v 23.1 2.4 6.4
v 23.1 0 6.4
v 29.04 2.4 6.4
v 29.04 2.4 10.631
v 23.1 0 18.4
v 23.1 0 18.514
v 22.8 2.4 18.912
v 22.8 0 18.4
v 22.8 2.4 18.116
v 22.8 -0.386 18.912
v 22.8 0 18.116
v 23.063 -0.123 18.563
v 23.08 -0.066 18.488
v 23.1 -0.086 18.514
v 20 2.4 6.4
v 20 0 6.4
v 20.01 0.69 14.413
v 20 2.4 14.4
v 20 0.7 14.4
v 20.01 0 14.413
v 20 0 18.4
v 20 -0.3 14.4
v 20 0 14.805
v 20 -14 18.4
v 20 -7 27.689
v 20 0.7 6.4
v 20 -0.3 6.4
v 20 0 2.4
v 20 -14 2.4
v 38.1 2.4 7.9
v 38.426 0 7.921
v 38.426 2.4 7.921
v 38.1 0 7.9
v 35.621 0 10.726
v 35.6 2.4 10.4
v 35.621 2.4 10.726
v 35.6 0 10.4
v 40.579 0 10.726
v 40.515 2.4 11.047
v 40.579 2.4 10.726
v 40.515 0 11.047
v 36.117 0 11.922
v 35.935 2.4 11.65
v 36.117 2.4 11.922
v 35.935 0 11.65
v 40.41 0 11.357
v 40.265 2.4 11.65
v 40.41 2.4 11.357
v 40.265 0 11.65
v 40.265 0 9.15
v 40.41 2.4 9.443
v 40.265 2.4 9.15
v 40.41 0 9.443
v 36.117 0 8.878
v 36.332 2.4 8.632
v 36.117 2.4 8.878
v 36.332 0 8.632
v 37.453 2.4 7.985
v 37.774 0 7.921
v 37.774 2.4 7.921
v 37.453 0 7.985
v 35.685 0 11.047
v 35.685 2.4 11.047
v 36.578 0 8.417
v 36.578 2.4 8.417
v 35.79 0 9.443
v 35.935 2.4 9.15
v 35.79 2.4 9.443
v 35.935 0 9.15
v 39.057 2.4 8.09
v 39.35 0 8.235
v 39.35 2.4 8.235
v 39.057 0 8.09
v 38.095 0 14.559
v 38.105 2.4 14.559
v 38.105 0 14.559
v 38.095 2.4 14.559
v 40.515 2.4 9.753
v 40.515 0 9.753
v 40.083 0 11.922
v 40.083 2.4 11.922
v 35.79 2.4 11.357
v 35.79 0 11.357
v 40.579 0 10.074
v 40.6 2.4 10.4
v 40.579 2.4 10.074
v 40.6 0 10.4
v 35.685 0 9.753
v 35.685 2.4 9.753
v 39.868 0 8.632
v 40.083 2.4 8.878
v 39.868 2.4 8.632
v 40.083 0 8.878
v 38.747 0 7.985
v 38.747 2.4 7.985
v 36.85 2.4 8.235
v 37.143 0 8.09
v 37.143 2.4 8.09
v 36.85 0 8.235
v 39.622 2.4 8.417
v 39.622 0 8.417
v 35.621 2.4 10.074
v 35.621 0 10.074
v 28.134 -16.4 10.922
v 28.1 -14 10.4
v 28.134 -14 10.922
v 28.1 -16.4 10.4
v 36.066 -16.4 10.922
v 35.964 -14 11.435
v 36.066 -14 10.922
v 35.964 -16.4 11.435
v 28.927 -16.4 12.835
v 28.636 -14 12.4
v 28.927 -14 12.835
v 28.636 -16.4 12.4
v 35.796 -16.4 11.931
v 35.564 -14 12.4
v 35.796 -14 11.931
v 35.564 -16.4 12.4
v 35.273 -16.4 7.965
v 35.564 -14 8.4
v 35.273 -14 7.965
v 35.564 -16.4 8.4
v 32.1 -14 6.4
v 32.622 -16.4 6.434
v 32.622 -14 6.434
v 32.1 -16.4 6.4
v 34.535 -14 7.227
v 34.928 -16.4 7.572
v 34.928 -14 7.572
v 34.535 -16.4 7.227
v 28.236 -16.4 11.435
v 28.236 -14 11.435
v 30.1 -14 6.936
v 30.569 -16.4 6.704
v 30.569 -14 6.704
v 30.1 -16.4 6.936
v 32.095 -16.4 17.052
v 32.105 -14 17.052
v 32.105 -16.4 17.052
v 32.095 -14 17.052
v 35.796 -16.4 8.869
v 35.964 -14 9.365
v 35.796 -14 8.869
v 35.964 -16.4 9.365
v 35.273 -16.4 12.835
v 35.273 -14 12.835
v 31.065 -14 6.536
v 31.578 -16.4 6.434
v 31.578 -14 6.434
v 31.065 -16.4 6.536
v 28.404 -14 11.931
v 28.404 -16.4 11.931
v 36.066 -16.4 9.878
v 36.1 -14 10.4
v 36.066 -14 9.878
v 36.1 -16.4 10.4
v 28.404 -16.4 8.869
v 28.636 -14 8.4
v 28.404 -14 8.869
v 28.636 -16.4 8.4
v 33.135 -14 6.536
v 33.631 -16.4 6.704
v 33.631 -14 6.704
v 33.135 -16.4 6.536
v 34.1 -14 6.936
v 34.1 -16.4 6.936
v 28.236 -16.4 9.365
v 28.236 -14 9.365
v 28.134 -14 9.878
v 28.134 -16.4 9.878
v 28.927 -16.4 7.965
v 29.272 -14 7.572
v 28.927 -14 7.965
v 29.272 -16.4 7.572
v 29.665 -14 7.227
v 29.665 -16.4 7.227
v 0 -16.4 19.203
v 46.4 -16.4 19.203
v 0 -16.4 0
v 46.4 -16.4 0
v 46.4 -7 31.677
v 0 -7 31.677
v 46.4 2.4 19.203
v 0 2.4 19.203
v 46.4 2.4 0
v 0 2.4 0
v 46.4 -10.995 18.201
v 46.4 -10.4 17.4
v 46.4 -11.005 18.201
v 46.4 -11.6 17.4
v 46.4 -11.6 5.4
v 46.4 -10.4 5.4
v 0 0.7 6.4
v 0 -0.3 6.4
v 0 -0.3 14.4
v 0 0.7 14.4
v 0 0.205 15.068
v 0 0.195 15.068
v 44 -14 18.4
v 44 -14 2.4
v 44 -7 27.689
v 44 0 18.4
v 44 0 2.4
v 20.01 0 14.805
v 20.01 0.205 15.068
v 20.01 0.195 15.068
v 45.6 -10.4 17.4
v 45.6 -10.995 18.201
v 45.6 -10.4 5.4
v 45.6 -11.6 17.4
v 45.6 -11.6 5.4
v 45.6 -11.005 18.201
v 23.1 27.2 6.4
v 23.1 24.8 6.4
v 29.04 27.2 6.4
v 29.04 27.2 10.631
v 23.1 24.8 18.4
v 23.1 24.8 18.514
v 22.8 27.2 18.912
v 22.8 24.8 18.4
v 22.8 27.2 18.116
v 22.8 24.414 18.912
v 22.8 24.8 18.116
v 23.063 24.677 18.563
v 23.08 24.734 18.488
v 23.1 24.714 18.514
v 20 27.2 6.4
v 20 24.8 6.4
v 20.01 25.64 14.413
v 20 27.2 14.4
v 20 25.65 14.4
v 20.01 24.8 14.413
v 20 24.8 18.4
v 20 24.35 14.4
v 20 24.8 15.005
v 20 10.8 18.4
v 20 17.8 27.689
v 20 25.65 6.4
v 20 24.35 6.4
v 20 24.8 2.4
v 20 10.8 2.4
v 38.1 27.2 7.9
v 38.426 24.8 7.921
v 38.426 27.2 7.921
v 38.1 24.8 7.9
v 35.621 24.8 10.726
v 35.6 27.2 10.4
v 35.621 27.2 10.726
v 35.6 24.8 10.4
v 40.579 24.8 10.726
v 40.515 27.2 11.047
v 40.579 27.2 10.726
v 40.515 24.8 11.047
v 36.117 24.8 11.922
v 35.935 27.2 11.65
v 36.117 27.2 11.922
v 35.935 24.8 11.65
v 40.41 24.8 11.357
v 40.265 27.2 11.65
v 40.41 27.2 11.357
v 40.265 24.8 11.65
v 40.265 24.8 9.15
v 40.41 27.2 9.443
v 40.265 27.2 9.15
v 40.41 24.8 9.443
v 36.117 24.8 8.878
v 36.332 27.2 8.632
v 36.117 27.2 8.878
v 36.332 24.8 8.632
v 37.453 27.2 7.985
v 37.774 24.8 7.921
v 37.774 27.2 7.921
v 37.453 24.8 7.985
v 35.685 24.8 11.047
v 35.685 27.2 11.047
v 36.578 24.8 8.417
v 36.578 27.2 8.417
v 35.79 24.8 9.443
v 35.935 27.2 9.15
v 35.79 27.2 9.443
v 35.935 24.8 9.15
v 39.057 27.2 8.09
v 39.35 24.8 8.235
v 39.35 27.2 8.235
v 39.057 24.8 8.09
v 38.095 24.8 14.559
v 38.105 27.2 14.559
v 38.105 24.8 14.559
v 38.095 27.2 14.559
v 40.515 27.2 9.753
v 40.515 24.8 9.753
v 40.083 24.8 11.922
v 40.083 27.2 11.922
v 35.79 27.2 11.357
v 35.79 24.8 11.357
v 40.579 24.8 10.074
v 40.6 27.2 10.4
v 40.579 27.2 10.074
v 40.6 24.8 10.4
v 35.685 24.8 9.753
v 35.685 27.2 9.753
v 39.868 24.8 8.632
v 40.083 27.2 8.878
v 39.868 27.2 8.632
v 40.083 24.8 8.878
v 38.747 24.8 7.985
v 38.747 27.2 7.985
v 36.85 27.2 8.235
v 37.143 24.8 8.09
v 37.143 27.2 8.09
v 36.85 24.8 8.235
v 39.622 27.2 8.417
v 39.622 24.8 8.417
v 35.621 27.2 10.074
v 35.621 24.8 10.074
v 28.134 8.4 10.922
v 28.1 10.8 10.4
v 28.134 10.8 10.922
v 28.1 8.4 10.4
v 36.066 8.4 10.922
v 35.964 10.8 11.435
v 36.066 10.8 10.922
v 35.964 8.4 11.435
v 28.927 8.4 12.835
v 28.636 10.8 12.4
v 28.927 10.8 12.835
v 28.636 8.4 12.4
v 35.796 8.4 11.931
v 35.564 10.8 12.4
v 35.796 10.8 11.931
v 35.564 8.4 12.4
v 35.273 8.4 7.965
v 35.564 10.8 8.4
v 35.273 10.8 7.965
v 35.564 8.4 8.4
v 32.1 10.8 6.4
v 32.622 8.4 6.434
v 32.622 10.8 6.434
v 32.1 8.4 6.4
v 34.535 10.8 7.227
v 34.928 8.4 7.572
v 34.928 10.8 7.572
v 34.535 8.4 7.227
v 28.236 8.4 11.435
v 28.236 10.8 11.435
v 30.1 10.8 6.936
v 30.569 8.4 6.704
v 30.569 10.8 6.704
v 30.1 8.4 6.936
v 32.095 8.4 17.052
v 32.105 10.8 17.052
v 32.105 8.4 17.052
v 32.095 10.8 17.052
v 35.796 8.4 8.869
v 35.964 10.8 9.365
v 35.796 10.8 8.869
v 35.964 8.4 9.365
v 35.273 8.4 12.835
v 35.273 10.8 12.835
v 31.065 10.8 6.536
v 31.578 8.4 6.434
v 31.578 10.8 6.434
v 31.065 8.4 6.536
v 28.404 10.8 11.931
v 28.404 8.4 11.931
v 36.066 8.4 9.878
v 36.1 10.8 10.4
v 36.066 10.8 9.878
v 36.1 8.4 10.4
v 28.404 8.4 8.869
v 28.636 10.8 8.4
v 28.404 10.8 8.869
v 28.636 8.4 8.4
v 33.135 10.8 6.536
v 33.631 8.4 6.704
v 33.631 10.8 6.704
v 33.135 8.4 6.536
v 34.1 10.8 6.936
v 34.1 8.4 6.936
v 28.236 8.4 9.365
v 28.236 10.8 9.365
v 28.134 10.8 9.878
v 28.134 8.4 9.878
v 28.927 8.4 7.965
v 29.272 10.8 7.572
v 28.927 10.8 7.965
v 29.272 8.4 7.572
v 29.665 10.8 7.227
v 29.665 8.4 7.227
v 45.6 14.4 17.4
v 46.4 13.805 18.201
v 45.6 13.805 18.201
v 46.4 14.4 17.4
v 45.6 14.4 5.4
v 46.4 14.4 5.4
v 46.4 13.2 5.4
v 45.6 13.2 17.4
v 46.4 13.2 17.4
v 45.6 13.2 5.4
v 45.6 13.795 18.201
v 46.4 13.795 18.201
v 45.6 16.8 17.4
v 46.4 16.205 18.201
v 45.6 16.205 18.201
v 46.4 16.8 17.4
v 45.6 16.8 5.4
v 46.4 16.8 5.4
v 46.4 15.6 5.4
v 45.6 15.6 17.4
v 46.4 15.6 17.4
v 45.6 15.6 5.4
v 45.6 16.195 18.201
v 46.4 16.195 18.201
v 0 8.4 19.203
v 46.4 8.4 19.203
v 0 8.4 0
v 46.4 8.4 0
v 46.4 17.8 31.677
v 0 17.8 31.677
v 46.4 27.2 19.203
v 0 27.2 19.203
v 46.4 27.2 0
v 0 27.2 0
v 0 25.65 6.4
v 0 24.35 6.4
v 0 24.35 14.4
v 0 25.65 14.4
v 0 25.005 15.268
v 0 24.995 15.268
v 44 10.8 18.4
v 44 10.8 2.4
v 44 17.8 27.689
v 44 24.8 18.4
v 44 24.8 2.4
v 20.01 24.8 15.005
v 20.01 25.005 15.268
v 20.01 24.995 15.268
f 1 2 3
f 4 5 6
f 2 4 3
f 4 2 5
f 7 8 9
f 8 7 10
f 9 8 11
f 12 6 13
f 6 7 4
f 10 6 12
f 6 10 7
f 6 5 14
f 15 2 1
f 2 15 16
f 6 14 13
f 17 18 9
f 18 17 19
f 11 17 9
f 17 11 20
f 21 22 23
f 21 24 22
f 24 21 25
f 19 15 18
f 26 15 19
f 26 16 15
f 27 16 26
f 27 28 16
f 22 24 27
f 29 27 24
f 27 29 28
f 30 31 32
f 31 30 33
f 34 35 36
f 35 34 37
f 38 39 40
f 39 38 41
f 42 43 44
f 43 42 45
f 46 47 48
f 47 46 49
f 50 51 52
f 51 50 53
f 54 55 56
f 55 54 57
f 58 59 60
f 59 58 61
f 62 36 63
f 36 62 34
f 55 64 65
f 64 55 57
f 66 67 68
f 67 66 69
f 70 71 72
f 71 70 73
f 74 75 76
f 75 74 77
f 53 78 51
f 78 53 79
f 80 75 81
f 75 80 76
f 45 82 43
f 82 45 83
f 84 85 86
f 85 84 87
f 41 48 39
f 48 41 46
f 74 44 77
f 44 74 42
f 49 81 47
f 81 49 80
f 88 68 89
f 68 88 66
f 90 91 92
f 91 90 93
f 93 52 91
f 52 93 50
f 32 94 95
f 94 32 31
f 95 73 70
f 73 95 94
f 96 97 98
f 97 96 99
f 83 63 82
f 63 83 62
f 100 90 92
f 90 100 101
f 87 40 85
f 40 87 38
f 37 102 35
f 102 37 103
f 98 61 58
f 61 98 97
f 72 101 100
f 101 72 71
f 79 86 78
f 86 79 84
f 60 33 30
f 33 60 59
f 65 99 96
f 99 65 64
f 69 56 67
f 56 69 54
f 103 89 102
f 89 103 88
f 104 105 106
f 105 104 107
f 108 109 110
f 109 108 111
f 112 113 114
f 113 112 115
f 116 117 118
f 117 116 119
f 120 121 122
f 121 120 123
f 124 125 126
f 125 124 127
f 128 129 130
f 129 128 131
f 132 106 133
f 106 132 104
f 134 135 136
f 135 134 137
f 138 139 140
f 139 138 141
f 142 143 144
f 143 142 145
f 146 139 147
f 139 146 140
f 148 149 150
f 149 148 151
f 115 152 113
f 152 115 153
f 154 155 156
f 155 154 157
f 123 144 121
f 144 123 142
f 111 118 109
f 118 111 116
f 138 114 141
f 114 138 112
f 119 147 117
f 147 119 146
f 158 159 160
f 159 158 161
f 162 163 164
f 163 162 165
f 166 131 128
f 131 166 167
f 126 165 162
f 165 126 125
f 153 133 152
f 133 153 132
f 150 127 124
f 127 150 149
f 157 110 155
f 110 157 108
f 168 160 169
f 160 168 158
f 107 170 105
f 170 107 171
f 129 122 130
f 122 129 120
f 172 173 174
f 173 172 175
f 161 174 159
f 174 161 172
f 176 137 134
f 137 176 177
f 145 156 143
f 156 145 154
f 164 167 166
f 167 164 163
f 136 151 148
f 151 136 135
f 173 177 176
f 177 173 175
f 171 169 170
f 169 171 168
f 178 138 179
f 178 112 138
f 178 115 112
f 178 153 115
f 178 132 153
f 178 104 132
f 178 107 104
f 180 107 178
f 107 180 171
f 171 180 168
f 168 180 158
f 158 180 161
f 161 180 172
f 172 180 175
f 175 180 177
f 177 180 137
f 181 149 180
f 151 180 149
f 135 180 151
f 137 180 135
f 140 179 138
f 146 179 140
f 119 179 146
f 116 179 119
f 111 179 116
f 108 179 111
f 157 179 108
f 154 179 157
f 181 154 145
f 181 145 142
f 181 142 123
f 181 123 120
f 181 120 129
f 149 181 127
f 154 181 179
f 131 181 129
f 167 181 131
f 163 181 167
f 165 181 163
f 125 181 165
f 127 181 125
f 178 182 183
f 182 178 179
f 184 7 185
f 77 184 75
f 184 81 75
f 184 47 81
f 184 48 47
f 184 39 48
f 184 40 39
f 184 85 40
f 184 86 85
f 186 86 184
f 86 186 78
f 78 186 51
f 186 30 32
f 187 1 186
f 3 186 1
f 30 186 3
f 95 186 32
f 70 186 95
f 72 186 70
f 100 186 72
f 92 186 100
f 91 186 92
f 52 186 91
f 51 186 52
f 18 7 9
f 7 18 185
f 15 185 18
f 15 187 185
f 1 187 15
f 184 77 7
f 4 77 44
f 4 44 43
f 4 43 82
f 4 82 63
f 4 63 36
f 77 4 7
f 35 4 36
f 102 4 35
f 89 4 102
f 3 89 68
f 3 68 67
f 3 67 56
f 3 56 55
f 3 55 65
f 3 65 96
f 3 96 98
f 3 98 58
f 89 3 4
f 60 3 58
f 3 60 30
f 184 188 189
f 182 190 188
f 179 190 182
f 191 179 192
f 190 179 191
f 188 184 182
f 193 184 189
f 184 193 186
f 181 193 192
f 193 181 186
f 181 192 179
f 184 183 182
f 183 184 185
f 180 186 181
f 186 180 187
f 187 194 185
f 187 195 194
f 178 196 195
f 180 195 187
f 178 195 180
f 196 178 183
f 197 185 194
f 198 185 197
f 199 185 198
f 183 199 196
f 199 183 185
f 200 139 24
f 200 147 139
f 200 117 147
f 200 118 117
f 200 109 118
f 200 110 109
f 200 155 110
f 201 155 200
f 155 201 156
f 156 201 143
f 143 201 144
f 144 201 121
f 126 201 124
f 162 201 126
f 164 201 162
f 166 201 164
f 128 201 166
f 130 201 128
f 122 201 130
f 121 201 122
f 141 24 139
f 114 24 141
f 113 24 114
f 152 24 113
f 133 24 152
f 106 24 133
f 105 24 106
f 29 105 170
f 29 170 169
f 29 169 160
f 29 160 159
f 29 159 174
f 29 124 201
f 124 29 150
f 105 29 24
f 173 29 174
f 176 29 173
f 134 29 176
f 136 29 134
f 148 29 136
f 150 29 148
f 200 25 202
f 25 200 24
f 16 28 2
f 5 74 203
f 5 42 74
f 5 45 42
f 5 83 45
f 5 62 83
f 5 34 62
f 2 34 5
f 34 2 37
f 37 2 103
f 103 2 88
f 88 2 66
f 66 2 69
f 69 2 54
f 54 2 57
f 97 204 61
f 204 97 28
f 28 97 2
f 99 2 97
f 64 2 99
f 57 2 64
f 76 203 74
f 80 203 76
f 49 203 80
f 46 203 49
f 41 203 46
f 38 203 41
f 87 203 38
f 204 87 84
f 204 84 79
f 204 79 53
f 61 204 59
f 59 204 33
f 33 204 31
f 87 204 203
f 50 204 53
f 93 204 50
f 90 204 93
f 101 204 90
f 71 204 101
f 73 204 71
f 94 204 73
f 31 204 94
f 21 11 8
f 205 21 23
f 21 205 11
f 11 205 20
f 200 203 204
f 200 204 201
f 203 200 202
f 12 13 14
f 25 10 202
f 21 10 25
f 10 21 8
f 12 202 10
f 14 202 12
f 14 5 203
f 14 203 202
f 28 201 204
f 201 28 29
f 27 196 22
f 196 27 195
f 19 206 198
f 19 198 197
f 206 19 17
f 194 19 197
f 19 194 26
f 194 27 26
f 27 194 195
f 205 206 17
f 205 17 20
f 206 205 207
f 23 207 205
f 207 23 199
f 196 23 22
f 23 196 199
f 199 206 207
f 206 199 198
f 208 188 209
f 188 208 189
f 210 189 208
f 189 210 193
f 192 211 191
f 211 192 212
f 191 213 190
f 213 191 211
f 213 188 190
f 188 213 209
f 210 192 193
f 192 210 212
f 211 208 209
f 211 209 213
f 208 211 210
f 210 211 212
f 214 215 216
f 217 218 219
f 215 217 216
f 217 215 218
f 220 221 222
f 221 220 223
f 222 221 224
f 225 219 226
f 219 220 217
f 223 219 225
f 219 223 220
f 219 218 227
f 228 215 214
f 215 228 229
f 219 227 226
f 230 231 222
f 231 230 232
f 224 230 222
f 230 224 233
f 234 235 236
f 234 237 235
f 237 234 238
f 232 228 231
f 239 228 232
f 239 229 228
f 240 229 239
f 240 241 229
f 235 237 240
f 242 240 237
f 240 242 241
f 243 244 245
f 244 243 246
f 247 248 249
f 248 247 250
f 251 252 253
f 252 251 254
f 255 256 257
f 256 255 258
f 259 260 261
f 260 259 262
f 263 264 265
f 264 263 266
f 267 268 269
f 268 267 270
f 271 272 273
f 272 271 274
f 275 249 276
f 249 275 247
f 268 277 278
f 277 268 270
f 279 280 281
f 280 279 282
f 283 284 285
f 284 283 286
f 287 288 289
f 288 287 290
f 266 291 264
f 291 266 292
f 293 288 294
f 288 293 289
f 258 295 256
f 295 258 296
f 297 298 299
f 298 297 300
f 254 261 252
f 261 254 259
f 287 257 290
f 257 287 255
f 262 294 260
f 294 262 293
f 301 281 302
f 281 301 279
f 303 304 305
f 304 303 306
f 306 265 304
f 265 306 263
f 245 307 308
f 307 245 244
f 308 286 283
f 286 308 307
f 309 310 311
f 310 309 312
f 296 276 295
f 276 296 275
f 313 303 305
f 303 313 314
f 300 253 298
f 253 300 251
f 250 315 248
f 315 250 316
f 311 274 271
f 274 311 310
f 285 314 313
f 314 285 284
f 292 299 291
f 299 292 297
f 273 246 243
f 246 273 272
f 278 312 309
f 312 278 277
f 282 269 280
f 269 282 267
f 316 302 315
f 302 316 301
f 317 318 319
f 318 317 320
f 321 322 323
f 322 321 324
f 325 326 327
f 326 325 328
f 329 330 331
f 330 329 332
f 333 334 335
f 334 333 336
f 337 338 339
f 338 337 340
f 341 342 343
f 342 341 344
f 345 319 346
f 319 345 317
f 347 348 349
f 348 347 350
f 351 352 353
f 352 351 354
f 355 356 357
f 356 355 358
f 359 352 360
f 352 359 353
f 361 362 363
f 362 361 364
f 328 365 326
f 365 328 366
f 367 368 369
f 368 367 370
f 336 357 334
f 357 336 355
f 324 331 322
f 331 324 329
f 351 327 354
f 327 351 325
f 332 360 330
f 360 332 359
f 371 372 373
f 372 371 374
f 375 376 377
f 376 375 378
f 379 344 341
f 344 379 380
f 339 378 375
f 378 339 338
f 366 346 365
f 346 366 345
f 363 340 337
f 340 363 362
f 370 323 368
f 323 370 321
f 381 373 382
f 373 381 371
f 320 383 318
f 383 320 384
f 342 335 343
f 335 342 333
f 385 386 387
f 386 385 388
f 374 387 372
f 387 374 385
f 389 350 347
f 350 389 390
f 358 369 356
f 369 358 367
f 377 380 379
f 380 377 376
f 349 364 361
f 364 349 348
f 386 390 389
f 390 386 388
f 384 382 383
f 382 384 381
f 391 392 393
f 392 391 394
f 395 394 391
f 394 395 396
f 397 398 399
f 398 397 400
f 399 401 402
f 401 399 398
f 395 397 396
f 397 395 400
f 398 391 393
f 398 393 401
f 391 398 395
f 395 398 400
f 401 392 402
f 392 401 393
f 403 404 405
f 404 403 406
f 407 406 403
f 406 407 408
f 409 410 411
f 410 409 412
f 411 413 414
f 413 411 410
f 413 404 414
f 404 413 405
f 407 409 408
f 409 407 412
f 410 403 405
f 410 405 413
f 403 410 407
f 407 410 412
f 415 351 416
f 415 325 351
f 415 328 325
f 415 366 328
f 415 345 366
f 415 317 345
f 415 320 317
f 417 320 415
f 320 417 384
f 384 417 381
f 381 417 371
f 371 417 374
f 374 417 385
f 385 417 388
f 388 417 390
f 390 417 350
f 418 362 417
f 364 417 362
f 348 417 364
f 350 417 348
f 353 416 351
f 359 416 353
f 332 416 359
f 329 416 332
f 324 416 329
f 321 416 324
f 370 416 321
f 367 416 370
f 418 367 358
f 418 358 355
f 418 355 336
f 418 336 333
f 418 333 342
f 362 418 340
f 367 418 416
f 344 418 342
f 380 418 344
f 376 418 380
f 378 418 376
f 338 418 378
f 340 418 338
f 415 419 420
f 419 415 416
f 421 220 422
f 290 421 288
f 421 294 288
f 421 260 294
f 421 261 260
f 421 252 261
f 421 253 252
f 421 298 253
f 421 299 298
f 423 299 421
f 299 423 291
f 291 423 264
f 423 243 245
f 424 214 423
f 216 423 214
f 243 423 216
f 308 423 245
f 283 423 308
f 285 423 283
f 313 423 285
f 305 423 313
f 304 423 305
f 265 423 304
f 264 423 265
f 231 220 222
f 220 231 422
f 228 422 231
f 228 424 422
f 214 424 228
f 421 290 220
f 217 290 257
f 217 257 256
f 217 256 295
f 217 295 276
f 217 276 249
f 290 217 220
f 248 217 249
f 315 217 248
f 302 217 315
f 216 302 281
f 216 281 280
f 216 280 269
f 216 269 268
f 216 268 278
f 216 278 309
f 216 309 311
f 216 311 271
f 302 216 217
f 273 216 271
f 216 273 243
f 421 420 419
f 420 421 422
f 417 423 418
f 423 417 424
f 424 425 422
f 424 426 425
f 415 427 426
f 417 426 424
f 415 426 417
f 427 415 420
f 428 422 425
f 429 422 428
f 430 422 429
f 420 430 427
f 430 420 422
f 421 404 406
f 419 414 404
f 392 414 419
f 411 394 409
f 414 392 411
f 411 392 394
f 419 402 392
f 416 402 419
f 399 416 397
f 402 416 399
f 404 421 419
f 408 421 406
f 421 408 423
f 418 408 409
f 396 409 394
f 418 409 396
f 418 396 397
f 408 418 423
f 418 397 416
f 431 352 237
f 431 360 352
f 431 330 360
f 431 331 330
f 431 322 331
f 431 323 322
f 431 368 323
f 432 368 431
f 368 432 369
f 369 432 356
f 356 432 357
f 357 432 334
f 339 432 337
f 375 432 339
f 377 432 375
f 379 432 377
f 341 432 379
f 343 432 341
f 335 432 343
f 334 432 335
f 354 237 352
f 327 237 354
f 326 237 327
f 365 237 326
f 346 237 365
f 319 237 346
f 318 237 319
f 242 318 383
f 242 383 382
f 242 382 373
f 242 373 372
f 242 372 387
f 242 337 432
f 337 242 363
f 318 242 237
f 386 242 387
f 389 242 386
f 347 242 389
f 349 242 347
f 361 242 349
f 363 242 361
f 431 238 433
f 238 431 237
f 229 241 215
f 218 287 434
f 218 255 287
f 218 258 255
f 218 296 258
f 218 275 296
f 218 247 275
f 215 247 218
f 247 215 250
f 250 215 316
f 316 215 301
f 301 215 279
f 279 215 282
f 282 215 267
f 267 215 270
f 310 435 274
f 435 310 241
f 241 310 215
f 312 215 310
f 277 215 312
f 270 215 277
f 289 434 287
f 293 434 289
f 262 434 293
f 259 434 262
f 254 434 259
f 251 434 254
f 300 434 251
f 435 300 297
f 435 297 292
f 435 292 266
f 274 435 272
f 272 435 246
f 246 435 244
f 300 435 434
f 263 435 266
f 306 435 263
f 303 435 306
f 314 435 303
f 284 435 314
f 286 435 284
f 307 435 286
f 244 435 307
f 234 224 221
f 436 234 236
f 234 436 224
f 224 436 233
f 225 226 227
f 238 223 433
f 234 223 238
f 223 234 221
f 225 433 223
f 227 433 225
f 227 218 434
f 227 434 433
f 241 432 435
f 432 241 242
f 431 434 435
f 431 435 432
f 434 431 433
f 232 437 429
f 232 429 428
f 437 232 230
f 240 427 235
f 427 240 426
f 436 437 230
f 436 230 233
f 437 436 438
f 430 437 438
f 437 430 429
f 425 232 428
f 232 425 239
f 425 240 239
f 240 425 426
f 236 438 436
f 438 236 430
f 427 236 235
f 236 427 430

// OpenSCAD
// Ocarina voicing whistle (2026-11-12): the test print before the ocarina (Scott's form
// A, a 12-hole Alto C). The labium edge and windway decide whether an ocarina sounds at
// all, and they are what the printer is most likely to spoil; two constants in the
// tuning (ocarina_budget.py) can only be measured on a real print. So this whistle has
// the instrument's real voicing and two finger holes. Blow it with a tuner: the three
// notes (closed, the small hole open, both open) give the window term and the hole end
// correction, and the full ocarina's hole sizes come from them.
//
// How it prints, and so how the ocarina will: lying on its side, the air flowing along
// the plate (+x), the windway an upright slot 8 mm tall.
//   - The labium edge stands upright and builds bead on bead, its ramp an upright face.
//     Stood on its mouthpiece (the first draft), the edge's first layer was an 8 mm
//     sliver across the window, and the gate's slicer propped it from the plate, up
//     through the windway itself.
//   - The windway's roof is its 1 mm width, not a bridge.
//   - The chamber's roof is a gable 37 deg from upright, so nothing inside needs support.
//   - Finger holes go through upright walls, so they are teardrops pointing up; the
//     ocarina's will be too, so what this measures carries over.
//
// Two whistles, differing only in the windway's height (here its thickness in y): one
// notch = 1.0 mm, two = 1.3 mm.
//   part = "both" | "whistle" (with variant 0/1)
// Millimetres; x the air's way, y toward the front (the window side), z up.

part = "both";
variant = 0;
$fn = 48;

WW   = 8.0;               // windway width (upright here)
WHS  = [1.0, 1.3];        // windway height (across, in y), the variable
WL   = 20;                // windway length = the mouthpiece
WIN_PRINT = 4.0;          // window as printed: windway exit to labium edge
EDGE_LOSS = 0.9;          // the wedge's tip, thinner than a bead, doesn't print: the print
                          // fidelity check measured 0.9 mm of it dropped along the air's line
WIN  = WIN_PRINT - EDGE_LOSS;   // so the model's edge is drawn that much early
LAB  = 22;                // labium wedge angle: the ramp leans this far off the air's line
OFF  = 0.2;               // labium edge this much inside the windway's centre line
T    = 2.4;               // walls (Benson's spec)
ROOF = 37;                // the chamber's roof and the holes' points, deg from upright
CL = 24; CD = 14; CH = 16;  // chamber inside: along the air, deep (y), tall to the eaves (z)
                            // (30 x 16 x 24 took 1 h 10 m for the pair: smaller, the voicing unchanged)
Z0 = T;                     // chamber floor
ZC = Z0 + CH / 2;           // window and windway centre height
WIN_TOP = ZC + WW / 2 + WIN / tan(ROOF);   // the window's top at the labium edge
HOLES = [[5.0, 15, 1], [8.0, 9, -1]];   // [diameter, x past the labium, face +y/-y]: the small one
                                         // on the front past the ramp, the big one on the back

function wh(v) = WHS[v];
// a w x h rectangle centred on the origin with a 37 deg point on top (in 2D, up = +y)
module pointed(wh_) hull() { square(wh_, center = true); translate([0, wh_[1] / 2 + (wh_[0] / 2) / tan(ROOF)]) square(0.01, center = true); }
module teardrop2d(d) hull() { circle(d = d); translate([0, d / 2 / sin(ROOF)]) square(0.01, center = true); }
// the chamber's cross-section (y, z): a box with a gable roof
module prof() polygon([[-CD, Z0], [0, Z0], [0, Z0 + CH], [-CD / 2, Z0 + CH + (CD / 2) / tan(ROOF)], [-CD, Z0 + CH]]);
module along(x0, x1) translate([x0, 0, 0]) rotate([90, 0, 90]) linear_extrude(x1 - x0) children();

module whistle(v) difference() {
    // the body: the chamber's section grown by T, from the mouthpiece to the far end
    along(0, WL + CL + T) offset(delta = T) prof();
    along(WL, WL + CL) prof();
    // windway: an upright slot from the mouthpiece end to the window, its top pointed
    // (37 deg): a flat 1.3 mm roof drew support up the slot itself
    along(-1, WL + 0.01) translate([OFF, ZC]) pointed([wh(v), WW]);
    // Window and labium cut together. Their top is one pointed arch peaking over the
    // labium edge: the window's top rises 37 deg from upright toward the edge and the ramp
    // cut's top falls away from it. Each a flat top, or the two sloping toward each other,
    // left a dip at the edge where the wall above began as one bead over air, and the
    // gate's slicer propped it from the plate, up through the windway. The window is so
    // taller at the edge (WIN_TOP) than the 8 mm jet: that only adds to the window term
    // the whistle measures, and the ocarina copies this voicing exactly.
    union() {
        // window: through the front wall, open to the chamber behind
        translate([0, T + 1, 0]) rotate([90, 0, 0]) linear_extrude(T + 2)
            polygon([[WL, ZC - WW / 2], [WL + WIN, ZC - WW / 2], [WL + WIN, WIN_TOP], [WL, ZC + WW / 2]]);
        // labium: past the window the front wall's inside face is the line y = 0, and its
        // outside is cut back so the wall thickens from nothing at the edge, LAB deg off
        // the air's line
        intersection() {
            translate([WL + WIN, 0, ZC - WW / 2]) linear_extrude(WW + 30)
                // starting 0.3 inside the window: sharing its face left the mesh non-manifold
                polygon([[-0.3, -1], [0, 0], [(T + 1) / tan(LAB), T + 1], [-0.3, T + 1]]);
            translate([WL + WIN, -10, WIN_TOP]) rotate([0, 90 - ROOF, 0]) translate([-50, 0, -100]) cube([150, 20, 100]);
        }
    }
    // finger holes through the front and back walls, across the print
    for (h = HOLES) translate([WL + WIN + h[1], h[2] > 0 ? T / 2 : -CD - T / 2, ZC])
        rotate([90, 0, 0]) linear_extrude(T + 2, center = true) teardrop2d(h[0]);
    // variant notches across the far end, 0.8 deep (at 1.4 they left a 1.0 wall), upright
    // grooves with pointed tops: one = 1.0 mm
    // windway, two = 1.3
    for (k = [0 : v]) translate([WL + CL + T + 1.2, -CD + 3 + k * 2.4, Z0 + 3]) rotate([90, 0, -90])
        linear_extrude(2) hull() { translate([-0.6, 0]) square([1.2, 12]); translate([0, 12 + 0.6 / tan(ROOF)]) square(0.01, center = true); }
}

// the labium wedge, declared to the gate as deliberately thin (the sound edge itself),
// for both whistles as laid out in "both"
module labium_zone() for (v = [0 : 1]) translate([0, v * (CD + 2 * T + 6), 0])
    translate([WL + WIN - 0.5, -0.5, ZC - WW / 2 - 0.5]) cube([(T + 1) / tan(LAB) + 1, T + 1, WIN_TOP - ZC + WW / 2 + 1]);

if (part == "whistle") whistle(variant);
else if (part == "labium_zone") labium_zone();
else for (v = [0 : 1]) translate([0, v * (CD + 2 * T + 6), 0]) whistle(v);
